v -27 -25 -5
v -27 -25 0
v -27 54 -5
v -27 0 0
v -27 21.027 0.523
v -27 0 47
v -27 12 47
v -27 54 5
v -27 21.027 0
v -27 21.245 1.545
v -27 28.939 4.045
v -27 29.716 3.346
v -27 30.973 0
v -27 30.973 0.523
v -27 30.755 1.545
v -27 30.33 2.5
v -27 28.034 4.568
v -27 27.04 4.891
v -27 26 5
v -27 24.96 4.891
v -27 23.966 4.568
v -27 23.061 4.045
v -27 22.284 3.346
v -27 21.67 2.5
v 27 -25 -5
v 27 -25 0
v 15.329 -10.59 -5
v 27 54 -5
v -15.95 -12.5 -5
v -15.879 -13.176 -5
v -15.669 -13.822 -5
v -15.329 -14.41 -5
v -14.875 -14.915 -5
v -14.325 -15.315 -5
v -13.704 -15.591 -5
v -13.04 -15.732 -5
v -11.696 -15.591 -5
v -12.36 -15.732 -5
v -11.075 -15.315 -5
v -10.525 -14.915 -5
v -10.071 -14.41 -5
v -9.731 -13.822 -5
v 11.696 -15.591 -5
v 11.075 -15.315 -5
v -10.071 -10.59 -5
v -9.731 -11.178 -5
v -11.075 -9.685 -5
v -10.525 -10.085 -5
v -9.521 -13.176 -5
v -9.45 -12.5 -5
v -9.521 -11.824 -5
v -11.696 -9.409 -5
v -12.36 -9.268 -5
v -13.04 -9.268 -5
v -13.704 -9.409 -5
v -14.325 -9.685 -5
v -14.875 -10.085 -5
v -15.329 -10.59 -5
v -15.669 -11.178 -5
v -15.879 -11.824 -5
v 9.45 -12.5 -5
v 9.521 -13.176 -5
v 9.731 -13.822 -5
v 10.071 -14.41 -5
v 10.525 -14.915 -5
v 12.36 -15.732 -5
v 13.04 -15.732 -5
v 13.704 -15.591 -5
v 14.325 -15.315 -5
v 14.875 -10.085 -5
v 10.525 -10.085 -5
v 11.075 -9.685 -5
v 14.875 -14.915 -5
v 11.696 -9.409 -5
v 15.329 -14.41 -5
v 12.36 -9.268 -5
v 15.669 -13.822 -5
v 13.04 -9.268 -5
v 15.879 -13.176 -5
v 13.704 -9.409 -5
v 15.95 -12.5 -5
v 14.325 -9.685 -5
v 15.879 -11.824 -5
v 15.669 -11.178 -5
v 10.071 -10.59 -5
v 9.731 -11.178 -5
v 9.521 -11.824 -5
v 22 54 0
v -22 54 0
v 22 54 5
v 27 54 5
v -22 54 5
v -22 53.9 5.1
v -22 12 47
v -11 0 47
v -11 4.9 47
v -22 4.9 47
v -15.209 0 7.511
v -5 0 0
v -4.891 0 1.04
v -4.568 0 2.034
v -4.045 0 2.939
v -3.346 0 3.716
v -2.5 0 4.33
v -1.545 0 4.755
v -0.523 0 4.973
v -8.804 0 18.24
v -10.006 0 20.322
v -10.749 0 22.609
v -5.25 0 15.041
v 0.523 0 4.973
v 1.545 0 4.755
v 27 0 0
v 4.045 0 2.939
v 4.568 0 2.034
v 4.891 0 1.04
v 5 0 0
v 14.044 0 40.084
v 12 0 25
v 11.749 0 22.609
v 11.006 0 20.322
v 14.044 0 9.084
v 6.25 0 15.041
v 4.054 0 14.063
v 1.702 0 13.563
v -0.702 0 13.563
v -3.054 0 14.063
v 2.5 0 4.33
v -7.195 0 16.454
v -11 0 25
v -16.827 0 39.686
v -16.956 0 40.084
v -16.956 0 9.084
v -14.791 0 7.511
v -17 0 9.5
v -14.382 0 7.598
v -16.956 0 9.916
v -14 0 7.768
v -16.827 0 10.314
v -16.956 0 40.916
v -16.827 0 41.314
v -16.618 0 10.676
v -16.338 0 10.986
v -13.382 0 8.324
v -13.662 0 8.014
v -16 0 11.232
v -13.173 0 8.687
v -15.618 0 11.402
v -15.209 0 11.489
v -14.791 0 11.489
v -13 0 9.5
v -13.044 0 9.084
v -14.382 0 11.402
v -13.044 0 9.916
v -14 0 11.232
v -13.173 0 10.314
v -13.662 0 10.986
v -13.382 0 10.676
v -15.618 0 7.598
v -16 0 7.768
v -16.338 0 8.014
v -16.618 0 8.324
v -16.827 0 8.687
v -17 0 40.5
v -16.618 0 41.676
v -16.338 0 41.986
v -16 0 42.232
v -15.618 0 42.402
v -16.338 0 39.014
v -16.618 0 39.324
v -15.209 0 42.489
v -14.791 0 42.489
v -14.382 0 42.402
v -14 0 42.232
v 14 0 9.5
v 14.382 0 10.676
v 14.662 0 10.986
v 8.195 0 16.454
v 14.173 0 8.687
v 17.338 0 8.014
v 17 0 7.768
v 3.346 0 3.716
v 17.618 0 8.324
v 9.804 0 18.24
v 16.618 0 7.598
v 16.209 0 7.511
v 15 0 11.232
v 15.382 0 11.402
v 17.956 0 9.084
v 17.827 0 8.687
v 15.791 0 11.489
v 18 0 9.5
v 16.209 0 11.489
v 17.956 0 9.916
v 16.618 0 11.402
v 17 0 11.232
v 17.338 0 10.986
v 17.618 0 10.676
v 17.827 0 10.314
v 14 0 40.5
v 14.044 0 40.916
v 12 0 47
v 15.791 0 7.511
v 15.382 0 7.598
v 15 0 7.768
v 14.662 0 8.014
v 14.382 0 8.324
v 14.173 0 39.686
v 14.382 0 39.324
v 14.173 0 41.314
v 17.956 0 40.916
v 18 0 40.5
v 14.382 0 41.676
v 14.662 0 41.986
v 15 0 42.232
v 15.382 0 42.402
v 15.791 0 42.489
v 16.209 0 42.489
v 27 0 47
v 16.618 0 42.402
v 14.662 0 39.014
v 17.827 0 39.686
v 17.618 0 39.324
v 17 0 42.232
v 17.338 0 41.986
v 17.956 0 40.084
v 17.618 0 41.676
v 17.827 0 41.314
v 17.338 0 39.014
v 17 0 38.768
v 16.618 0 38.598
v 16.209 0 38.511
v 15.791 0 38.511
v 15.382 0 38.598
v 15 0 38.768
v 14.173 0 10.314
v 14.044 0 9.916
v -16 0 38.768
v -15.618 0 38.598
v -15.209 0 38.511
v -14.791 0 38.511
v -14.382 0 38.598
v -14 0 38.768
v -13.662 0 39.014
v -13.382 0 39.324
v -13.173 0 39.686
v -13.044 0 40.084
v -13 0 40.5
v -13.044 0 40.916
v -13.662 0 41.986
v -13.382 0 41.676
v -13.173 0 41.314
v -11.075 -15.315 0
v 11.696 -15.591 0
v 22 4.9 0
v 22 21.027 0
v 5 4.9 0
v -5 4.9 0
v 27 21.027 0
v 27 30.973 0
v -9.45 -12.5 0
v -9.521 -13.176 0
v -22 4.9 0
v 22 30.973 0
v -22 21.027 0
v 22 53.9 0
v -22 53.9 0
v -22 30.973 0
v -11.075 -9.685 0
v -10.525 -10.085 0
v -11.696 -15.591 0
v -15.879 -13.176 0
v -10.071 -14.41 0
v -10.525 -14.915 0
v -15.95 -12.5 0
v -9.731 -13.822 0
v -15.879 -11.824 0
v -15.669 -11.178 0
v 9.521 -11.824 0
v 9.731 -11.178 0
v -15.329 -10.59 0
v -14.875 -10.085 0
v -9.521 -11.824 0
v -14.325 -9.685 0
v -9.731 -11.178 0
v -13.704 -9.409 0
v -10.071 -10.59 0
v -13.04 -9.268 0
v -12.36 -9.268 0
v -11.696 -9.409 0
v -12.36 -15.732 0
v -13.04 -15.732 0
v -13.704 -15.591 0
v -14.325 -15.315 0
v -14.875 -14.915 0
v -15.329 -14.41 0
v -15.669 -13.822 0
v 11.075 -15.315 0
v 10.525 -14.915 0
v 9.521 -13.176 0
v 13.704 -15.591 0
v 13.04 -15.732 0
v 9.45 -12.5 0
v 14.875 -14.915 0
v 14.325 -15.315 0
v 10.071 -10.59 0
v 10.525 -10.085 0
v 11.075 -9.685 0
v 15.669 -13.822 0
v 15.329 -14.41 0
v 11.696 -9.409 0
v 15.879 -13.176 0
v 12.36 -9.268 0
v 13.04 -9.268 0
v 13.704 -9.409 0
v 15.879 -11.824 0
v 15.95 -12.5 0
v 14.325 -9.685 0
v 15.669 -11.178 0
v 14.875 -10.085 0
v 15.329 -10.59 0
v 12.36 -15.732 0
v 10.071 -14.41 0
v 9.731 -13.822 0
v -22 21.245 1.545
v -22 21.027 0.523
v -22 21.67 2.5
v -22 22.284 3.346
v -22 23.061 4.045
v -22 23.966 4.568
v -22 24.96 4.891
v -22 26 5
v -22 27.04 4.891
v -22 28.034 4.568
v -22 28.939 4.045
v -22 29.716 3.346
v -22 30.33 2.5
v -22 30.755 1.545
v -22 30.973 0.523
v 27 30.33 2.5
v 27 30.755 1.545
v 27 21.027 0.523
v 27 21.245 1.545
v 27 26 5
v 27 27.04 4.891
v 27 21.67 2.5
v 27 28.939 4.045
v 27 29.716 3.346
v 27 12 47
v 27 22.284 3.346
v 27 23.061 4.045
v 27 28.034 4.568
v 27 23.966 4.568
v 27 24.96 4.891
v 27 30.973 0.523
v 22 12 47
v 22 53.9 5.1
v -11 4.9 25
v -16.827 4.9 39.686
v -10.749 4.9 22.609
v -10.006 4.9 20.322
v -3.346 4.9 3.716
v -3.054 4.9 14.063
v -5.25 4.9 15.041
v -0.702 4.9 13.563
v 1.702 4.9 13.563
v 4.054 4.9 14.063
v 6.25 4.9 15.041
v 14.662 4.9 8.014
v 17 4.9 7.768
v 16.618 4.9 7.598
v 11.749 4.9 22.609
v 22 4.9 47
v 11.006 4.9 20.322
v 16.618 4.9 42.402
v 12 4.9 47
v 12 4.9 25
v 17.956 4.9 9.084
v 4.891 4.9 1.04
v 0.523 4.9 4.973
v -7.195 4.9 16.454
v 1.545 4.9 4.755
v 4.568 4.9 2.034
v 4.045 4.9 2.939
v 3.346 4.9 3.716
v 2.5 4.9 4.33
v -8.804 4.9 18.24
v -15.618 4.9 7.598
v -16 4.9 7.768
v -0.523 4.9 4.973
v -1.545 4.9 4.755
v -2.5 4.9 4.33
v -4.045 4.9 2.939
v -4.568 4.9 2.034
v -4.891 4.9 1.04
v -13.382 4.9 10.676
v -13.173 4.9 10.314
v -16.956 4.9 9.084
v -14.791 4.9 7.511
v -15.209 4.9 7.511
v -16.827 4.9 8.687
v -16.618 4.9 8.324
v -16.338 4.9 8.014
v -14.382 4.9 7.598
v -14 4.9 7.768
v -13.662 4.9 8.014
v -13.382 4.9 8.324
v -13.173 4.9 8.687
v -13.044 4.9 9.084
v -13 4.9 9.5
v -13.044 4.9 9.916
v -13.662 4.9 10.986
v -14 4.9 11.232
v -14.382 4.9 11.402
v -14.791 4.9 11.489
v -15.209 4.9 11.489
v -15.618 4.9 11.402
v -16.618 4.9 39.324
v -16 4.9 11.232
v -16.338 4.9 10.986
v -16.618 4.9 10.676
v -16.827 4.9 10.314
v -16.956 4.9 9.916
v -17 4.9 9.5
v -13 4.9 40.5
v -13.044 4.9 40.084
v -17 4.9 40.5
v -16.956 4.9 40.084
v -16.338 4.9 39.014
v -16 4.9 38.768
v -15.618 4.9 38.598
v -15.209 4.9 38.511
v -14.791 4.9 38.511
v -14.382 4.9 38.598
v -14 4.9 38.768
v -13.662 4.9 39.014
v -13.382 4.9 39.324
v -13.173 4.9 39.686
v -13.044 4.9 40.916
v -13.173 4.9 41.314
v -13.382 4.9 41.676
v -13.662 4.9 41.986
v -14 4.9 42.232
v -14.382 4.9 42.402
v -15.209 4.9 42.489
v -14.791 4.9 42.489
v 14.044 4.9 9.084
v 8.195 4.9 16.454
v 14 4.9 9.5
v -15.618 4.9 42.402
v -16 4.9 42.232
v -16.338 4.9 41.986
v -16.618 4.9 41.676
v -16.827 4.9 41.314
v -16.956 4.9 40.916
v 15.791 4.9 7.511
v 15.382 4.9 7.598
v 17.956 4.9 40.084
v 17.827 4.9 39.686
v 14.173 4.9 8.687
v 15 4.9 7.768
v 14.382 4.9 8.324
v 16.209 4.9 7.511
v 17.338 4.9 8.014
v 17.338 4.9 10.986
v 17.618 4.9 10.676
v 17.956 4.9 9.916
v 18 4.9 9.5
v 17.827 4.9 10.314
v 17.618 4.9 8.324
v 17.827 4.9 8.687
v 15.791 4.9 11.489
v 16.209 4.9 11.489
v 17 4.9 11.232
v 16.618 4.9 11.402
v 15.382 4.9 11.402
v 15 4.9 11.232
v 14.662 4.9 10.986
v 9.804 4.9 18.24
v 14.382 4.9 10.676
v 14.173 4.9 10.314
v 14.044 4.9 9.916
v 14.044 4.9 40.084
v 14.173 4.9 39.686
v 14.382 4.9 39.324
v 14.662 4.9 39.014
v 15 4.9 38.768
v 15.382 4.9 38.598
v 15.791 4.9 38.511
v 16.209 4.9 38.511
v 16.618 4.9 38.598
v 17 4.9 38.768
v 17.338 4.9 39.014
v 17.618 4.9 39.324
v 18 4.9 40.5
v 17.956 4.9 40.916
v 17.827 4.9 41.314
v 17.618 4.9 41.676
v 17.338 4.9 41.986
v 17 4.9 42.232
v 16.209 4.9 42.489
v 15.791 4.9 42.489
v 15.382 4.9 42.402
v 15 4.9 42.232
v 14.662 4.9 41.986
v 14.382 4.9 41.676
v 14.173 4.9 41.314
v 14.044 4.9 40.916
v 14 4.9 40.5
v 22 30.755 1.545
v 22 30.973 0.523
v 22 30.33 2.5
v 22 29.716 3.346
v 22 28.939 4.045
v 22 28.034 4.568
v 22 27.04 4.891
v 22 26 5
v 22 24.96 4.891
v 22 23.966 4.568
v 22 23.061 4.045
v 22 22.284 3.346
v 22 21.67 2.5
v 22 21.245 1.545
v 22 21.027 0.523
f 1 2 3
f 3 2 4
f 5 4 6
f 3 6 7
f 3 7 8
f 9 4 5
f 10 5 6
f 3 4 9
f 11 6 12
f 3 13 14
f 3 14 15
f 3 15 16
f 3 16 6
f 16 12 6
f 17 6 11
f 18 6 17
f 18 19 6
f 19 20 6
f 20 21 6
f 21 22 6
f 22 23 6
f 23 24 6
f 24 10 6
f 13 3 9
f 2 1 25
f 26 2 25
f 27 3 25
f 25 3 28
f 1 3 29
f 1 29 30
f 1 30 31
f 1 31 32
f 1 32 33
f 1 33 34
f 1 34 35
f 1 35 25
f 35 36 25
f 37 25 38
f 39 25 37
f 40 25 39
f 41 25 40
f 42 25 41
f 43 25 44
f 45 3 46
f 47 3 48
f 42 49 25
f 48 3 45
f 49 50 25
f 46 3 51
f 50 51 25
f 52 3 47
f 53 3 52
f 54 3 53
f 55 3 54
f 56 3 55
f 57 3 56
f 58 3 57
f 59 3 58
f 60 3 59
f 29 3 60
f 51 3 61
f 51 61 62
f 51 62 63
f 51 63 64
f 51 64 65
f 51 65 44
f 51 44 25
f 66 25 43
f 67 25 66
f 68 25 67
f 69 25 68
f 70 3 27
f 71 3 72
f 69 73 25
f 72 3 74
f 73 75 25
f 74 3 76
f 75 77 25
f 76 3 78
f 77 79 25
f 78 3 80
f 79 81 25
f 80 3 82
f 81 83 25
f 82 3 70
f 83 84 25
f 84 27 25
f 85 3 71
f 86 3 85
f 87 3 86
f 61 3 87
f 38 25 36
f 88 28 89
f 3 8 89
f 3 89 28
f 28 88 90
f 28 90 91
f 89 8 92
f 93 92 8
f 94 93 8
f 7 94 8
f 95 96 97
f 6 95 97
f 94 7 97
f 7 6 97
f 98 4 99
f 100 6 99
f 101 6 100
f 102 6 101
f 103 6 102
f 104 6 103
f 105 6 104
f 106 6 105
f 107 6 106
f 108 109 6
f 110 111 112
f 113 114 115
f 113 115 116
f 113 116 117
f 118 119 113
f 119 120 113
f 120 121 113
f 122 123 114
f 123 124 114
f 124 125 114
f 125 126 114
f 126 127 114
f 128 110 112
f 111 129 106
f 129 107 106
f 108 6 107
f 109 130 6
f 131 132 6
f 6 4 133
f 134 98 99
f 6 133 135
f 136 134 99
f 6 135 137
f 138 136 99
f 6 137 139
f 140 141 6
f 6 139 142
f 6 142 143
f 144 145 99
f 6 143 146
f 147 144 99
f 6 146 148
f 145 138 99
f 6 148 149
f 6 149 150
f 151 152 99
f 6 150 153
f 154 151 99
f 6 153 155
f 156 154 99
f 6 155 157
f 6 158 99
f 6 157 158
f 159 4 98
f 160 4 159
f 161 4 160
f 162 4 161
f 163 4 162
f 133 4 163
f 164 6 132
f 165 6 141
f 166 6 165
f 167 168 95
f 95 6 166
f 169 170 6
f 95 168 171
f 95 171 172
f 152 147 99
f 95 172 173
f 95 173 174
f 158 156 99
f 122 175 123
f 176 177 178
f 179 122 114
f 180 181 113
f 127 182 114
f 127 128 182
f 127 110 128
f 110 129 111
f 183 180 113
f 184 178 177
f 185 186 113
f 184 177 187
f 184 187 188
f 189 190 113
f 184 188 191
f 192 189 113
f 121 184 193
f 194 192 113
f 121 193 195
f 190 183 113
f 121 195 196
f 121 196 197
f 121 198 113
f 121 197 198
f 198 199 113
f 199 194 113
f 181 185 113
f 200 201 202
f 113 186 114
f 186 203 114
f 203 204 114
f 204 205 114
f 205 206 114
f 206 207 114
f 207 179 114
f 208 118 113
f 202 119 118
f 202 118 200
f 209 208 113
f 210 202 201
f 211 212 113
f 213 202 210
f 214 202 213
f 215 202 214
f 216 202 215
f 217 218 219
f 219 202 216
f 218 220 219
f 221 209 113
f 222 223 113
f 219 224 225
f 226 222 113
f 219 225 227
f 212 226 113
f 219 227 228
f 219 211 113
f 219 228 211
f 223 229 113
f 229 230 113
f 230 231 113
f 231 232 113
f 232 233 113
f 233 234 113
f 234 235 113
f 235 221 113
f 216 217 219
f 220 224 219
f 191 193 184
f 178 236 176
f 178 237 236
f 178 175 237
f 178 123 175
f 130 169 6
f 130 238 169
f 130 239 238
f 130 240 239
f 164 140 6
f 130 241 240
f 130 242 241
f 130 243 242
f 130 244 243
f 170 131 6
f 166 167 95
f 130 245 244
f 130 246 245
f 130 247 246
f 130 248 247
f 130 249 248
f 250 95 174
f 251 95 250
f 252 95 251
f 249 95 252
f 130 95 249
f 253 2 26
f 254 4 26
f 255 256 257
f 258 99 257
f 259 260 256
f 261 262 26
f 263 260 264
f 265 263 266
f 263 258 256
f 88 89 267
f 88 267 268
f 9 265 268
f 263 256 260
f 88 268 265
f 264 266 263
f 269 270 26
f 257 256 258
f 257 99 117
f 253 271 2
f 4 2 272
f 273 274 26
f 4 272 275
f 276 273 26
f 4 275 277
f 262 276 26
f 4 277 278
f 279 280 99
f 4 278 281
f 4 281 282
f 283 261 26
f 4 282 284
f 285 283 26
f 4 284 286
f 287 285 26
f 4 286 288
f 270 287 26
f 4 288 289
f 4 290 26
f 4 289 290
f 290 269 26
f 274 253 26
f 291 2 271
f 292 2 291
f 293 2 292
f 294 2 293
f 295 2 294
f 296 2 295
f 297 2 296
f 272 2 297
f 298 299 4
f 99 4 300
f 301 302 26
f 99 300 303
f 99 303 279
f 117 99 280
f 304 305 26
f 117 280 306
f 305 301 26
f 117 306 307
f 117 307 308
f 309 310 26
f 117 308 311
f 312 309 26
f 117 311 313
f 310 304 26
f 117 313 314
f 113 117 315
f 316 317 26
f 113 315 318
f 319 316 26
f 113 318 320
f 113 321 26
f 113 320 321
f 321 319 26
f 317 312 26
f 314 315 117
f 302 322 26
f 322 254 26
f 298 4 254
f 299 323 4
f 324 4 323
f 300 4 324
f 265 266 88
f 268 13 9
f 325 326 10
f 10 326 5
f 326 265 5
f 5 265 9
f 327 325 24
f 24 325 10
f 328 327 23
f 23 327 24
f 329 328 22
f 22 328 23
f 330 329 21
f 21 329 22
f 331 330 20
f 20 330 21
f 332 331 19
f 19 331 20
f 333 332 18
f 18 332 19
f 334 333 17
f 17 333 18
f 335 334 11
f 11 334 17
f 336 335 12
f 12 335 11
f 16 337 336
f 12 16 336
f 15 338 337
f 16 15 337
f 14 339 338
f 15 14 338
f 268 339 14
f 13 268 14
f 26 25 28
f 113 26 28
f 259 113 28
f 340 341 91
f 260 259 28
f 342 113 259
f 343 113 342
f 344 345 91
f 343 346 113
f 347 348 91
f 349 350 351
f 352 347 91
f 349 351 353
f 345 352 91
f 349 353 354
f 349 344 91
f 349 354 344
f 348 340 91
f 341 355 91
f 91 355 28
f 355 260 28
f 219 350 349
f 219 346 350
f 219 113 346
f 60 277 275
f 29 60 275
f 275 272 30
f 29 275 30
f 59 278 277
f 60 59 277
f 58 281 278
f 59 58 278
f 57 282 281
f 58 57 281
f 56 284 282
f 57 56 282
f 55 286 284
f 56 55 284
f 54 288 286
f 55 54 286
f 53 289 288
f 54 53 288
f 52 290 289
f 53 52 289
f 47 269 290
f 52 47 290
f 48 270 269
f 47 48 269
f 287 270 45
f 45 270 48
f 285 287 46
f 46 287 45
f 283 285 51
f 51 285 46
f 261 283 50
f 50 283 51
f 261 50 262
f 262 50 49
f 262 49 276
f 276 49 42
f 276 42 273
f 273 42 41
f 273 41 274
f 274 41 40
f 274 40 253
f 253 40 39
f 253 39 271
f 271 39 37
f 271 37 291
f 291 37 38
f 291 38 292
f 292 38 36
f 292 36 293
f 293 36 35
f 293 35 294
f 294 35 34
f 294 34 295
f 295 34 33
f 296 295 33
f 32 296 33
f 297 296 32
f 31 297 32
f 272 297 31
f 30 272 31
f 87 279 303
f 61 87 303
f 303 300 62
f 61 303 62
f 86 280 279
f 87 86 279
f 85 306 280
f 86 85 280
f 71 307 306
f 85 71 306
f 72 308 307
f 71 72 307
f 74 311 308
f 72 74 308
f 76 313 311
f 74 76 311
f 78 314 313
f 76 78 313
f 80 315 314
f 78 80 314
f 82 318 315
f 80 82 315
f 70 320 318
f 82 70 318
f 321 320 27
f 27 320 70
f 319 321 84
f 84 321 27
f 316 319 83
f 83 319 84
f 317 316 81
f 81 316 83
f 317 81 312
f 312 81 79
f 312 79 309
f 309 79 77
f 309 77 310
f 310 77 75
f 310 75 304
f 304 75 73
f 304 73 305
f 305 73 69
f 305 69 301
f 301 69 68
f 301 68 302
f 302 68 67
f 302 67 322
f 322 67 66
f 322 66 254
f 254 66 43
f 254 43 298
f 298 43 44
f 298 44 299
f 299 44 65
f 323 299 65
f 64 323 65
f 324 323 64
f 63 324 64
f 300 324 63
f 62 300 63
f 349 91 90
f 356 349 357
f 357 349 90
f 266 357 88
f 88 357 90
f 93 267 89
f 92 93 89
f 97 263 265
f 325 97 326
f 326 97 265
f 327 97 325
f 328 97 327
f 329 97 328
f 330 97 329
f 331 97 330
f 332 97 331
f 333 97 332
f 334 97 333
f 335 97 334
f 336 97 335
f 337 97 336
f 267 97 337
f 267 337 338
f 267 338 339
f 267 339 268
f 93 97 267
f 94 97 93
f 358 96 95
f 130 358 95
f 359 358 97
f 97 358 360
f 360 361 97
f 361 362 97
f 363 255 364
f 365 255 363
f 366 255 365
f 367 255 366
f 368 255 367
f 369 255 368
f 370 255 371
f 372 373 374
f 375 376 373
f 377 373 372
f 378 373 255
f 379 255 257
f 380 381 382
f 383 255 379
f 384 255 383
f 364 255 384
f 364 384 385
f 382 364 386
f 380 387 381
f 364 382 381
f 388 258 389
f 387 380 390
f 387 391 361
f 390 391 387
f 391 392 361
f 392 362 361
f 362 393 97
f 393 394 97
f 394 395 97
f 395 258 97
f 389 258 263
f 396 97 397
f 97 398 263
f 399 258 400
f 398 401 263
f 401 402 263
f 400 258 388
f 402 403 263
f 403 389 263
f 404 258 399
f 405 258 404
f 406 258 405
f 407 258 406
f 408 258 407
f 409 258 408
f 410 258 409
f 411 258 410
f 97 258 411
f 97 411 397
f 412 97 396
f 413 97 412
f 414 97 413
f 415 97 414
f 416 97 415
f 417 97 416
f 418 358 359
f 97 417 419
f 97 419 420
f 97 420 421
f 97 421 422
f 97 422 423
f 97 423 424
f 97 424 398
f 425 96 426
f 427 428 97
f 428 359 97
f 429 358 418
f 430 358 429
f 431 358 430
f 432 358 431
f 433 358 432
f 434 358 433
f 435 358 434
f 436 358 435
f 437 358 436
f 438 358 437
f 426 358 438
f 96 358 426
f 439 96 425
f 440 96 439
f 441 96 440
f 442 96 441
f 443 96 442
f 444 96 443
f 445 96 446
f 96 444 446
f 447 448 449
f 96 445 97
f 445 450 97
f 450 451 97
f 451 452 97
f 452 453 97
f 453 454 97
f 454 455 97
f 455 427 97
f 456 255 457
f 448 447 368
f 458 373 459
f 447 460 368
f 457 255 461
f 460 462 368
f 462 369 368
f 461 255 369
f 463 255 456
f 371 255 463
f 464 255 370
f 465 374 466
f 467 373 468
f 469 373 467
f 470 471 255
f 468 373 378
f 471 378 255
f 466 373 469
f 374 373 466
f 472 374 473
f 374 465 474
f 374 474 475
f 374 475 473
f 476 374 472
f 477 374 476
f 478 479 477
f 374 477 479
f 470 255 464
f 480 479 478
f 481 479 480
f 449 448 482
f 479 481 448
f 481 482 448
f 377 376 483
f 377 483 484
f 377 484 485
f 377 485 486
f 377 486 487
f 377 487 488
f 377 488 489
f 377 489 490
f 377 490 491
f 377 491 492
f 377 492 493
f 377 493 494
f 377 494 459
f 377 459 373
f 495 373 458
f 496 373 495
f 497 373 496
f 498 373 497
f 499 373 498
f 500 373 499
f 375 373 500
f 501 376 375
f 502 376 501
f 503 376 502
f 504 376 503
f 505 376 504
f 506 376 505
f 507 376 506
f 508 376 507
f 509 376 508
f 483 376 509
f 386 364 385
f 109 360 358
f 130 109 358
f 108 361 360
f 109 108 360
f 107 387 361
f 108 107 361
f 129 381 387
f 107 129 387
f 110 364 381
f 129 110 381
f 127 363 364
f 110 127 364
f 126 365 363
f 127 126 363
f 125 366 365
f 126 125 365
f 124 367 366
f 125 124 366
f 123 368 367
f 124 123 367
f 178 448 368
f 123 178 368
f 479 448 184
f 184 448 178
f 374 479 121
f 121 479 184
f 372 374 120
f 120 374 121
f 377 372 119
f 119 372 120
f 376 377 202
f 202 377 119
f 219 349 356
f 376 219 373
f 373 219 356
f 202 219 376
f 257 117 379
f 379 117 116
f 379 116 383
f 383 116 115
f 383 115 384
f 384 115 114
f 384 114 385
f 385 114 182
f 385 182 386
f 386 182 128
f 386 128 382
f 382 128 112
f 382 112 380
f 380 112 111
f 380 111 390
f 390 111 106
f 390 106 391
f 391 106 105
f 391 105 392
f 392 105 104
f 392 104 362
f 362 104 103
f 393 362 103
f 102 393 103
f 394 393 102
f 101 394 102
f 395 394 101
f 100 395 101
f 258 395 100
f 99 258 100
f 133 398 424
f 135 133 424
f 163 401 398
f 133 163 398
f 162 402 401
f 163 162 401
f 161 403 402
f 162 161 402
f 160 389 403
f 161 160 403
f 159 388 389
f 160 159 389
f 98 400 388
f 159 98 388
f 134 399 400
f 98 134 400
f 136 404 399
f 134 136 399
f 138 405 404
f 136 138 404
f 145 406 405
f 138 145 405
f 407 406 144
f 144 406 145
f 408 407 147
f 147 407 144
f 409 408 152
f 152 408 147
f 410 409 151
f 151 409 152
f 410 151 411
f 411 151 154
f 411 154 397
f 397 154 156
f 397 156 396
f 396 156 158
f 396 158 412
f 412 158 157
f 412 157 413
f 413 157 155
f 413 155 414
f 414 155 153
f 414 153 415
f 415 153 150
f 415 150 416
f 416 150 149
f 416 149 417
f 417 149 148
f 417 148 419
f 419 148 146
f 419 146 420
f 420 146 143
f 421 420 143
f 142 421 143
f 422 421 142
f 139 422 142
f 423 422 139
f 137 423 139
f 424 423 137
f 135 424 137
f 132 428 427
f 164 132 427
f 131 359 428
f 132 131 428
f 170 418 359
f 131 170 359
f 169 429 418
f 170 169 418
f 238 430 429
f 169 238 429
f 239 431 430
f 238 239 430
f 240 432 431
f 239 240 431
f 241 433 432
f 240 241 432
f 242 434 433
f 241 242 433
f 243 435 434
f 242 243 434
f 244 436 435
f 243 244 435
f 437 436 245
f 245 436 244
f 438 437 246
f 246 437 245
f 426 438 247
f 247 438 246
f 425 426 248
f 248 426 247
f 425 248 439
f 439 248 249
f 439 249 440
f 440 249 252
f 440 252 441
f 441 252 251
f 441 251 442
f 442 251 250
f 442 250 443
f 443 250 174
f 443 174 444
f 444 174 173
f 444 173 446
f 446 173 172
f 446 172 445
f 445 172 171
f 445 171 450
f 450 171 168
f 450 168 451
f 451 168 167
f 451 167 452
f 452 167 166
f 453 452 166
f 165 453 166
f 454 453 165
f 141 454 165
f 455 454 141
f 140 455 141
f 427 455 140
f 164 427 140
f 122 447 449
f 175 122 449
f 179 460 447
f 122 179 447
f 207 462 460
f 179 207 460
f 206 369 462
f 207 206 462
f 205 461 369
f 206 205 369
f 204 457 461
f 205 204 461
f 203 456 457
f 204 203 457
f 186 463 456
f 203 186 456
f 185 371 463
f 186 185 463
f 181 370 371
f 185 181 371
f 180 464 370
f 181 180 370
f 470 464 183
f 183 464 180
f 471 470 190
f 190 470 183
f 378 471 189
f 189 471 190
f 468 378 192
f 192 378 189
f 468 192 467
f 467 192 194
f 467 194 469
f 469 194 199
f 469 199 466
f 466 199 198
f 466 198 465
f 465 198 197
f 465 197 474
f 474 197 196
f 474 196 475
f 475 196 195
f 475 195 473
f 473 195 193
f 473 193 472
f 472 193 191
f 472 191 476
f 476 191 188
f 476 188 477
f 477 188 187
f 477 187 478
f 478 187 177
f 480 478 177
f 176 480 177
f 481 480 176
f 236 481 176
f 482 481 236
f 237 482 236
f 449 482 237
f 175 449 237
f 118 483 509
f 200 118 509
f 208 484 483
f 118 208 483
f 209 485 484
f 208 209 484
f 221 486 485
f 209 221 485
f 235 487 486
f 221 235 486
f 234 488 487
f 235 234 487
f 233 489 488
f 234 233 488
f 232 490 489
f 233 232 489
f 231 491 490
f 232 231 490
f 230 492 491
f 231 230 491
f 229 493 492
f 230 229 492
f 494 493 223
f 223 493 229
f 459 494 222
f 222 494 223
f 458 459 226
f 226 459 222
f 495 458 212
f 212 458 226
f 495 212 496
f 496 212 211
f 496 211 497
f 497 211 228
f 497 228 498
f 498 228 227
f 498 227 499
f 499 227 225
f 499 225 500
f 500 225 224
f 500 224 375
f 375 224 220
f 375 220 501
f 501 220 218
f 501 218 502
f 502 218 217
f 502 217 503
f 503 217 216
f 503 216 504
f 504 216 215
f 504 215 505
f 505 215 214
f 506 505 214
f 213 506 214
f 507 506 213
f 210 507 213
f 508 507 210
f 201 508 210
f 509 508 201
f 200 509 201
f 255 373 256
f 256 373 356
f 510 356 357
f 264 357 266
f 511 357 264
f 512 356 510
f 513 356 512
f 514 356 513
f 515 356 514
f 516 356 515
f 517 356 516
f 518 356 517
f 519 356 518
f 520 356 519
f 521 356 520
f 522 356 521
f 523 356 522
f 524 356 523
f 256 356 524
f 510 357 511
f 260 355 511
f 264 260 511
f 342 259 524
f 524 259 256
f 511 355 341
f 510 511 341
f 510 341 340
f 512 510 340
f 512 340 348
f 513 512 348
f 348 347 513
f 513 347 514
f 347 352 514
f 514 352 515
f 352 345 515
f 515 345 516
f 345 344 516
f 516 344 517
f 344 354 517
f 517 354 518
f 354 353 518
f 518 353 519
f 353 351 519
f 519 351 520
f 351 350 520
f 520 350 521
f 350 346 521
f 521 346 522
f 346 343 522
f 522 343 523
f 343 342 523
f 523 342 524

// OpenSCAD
// file: syringePumpConstants.scad
/* === Project-universal Constants === */

//Not all of these variables are used in this specific model,
//but the same variable set is used across all models in this project.

$fs = 0.1;

inch = 25.4; //for mm conversion

//width of base
baseSizeY = 2*inch;
centerY = baseSizeY / 2; //both axes go right down the middle of the base

//stepper motor
stepperZSize = 42;
stepperYSize = 42;

//608 bearing 
bearing608Height = 8.5;
bearing608Diameter = 22.5;

//height of holder for 80/20 screws
mountPlateHeight = 5;

//axis heights
threadedAxisHeight = stepperZSize/2 + mountPlateHeight + 4;
smoothAxisHeight = (threadedAxisHeight-6.6) / 2;
smoothRodRadius = 4.2;

//syringe properties
barrelDiameter = 25;

barrelSlotThickness = 3;
barrelSlotHeight = 28;

syringeCenterHeight = threadedAxisHeight + bearing608Diameter/2 + 4 + barrelDiameter/2;

//fixes render oddities
floatCorrection = 0.001; 
floatCorrection2 = 2*floatCorrection; 

//8020 mounting plate
screwPlateSize = 25;	
screwRadius = 3.5;
// main file
include <syringePumpConstants.scad>

nema_17_mount();

module nema_17_mount()
{
	wall_thickness = 5;
	motor_width = 42;
	frame_width = motor_width + (wall_thickness + 1)*2;
	bolt = 4;
	height = 25;

	inch = 25.4;
	screwPlateSize = 25;	
	screwRadius = 3.25;
	
	//these are all the mount point holes.
	x1 = -wall_thickness;
	y1 = wall_thickness*2;
	x2 = frame_width+wall_thickness;
	y2 = wall_thickness*2;
	x3 = -wall_thickness;
	y3 = frame_width-wall_thickness*2;
	x4 = frame_width + wall_thickness;
	y4 = frame_width-wall_thickness*2;
	
	//center the whole thing in X
	translate([-frame_width/2, 0, 0])
	{

		//floor, with mounting holes for 80/20
			
		translate([0,-screwPlateSize,-wall_thickness]){
			difference(){
				cube(size=[frame_width,frame_width+screwPlateSize,wall_thickness]);
				
				translate([frame_width/2-inch/2, screwPlateSize/2, 0]){
					cylinder(h=wall_thickness, r=screwRadius);
				}
				translate([frame_width/2+inch/2, screwPlateSize/2, 0]){
					cylinder(h=wall_thickness, r=screwRadius);
				}

			}
		}

		difference()
		{
			//build the main unit.
			union()
			{
				//structure
				cube([wall_thickness, frame_width, frame_width]); //front face
				cube([frame_width, wall_thickness, frame_width]); //left face
				translate([frame_width-wall_thickness, 0, 0])     //right face
					cube([wall_thickness, frame_width, frame_width]);

			}


			//front left mount hole
			echo(x1, y1);
			translate([x1, y1, 0])
			{
				cylinder(r=bolt/2, h=wall_thickness);
				translate([0,0,wall_thickness])
					cylinder(r=bolt, h=wall_thickness*2);
			}
			
			//front right mount hole
			echo(x2, y2);
			translate([x2, y2, 0])
			{
				cylinder(r=bolt/2, h=wall_thickness);
				translate([0,0,wall_thickness])
					cylinder(r=bolt, h=wall_thickness*2);			
			}
			
			//rear left mount hole
			echo(x3, y3);
			translate([x3, y3, 0])
			{
				cylinder(r=bolt/2, h=wall_thickness);
				translate([0,0,wall_thickness])
					cylinder(r=bolt, h=wall_thickness*2);
			}
			
			//rear right mount hole
			echo(x4, y4);
			translate([x4, y4, 0])
			{
				cylinder(r=bolt/2, h=wall_thickness);
				translate([0,0,wall_thickness])
					cylinder(r=bolt, h=wall_thickness*2);
			}
			
			//mount hole slits
			translate([frame_width + wall_thickness*1.5, frame_width-wall_thickness*2, wall_thickness/2])
				cube(size=[wall_thickness, 0.1, wall_thickness*3], center=true);
			translate([frame_width + wall_thickness*1.5, wall_thickness*2, wall_thickness/2])
				cube(size=[wall_thickness, 0.1, wall_thickness*3], center=true);
			translate([-wall_thickness*1.5, frame_width-wall_thickness*2, wall_thickness/2])
				cube(size=[wall_thickness, 0.1, wall_thickness*3], center=true);
			translate([-wall_thickness*1.5, wall_thickness*2, wall_thickness/2])
				cube(size=[wall_thickness, 0.1, wall_thickness*3], center=true);

			//nema 17 mount
			rotate([90, 0, 0])
			{
				translate([frame_width/2+0.5, height, -wall_thickness])
				{
					translate([15.5, 15.5, 0])
						cylinder(r=bolt/2, h=wall_thickness+1);
					translate([-15.5, 15.5, 0])
						cylinder(r=bolt/2, h=wall_thickness+1);
					translate([15.5, -15.5, 0])
						cylinder(r=bolt/2, h=wall_thickness+1);
					translate([-15.5, -15.5, 0])
						cylinder(r=bolt/2, h=wall_thickness+1);

					cylinder(r=11.5, h=wall_thickness+1);

					translate([-11.5, 0, 0])
						cube([23, frame_width, wall_thickness+1]);
				}
			}

			//back slant cutaway
			translate([0, 0, frame_width+wall_thickness])
				rotate([45, 0, 0])
					translate([-frame_width, 0, -frame_width*2])
						cube(size=[frame_width*4, frame_width*2, frame_width*4]);

			//front anti-warp circle
			translate([frame_width/2, wall_thickness*1.25, 0])
				rotate([90, 0, 0])
					cylinder(r=wall_thickness, h=wall_thickness*2);

			//middle anti-warp circle			
			translate([0, motor_width/2 + wall_thickness, 0])
				rotate([0, 90, 0])
					cylinder(r=wall_thickness, h=frame_width+1);

			//cutout / tidy up cubes.
			translate([wall_thickness, wall_thickness-0.1, -1])
				cube([frame_width-wall_thickness*2, frame_width-wall_thickness, motor_width*2]);
			translate([-frame_width/2,-frame_width/2, wall_thickness+motor_width])
				cube([frame_width*2, frame_width*2, frame_width]);
			translate([-frame_width/2, -frame_width/2,-frame_width])
				cube([frame_width*2, frame_width*2, frame_width]);
		}
	}
}
